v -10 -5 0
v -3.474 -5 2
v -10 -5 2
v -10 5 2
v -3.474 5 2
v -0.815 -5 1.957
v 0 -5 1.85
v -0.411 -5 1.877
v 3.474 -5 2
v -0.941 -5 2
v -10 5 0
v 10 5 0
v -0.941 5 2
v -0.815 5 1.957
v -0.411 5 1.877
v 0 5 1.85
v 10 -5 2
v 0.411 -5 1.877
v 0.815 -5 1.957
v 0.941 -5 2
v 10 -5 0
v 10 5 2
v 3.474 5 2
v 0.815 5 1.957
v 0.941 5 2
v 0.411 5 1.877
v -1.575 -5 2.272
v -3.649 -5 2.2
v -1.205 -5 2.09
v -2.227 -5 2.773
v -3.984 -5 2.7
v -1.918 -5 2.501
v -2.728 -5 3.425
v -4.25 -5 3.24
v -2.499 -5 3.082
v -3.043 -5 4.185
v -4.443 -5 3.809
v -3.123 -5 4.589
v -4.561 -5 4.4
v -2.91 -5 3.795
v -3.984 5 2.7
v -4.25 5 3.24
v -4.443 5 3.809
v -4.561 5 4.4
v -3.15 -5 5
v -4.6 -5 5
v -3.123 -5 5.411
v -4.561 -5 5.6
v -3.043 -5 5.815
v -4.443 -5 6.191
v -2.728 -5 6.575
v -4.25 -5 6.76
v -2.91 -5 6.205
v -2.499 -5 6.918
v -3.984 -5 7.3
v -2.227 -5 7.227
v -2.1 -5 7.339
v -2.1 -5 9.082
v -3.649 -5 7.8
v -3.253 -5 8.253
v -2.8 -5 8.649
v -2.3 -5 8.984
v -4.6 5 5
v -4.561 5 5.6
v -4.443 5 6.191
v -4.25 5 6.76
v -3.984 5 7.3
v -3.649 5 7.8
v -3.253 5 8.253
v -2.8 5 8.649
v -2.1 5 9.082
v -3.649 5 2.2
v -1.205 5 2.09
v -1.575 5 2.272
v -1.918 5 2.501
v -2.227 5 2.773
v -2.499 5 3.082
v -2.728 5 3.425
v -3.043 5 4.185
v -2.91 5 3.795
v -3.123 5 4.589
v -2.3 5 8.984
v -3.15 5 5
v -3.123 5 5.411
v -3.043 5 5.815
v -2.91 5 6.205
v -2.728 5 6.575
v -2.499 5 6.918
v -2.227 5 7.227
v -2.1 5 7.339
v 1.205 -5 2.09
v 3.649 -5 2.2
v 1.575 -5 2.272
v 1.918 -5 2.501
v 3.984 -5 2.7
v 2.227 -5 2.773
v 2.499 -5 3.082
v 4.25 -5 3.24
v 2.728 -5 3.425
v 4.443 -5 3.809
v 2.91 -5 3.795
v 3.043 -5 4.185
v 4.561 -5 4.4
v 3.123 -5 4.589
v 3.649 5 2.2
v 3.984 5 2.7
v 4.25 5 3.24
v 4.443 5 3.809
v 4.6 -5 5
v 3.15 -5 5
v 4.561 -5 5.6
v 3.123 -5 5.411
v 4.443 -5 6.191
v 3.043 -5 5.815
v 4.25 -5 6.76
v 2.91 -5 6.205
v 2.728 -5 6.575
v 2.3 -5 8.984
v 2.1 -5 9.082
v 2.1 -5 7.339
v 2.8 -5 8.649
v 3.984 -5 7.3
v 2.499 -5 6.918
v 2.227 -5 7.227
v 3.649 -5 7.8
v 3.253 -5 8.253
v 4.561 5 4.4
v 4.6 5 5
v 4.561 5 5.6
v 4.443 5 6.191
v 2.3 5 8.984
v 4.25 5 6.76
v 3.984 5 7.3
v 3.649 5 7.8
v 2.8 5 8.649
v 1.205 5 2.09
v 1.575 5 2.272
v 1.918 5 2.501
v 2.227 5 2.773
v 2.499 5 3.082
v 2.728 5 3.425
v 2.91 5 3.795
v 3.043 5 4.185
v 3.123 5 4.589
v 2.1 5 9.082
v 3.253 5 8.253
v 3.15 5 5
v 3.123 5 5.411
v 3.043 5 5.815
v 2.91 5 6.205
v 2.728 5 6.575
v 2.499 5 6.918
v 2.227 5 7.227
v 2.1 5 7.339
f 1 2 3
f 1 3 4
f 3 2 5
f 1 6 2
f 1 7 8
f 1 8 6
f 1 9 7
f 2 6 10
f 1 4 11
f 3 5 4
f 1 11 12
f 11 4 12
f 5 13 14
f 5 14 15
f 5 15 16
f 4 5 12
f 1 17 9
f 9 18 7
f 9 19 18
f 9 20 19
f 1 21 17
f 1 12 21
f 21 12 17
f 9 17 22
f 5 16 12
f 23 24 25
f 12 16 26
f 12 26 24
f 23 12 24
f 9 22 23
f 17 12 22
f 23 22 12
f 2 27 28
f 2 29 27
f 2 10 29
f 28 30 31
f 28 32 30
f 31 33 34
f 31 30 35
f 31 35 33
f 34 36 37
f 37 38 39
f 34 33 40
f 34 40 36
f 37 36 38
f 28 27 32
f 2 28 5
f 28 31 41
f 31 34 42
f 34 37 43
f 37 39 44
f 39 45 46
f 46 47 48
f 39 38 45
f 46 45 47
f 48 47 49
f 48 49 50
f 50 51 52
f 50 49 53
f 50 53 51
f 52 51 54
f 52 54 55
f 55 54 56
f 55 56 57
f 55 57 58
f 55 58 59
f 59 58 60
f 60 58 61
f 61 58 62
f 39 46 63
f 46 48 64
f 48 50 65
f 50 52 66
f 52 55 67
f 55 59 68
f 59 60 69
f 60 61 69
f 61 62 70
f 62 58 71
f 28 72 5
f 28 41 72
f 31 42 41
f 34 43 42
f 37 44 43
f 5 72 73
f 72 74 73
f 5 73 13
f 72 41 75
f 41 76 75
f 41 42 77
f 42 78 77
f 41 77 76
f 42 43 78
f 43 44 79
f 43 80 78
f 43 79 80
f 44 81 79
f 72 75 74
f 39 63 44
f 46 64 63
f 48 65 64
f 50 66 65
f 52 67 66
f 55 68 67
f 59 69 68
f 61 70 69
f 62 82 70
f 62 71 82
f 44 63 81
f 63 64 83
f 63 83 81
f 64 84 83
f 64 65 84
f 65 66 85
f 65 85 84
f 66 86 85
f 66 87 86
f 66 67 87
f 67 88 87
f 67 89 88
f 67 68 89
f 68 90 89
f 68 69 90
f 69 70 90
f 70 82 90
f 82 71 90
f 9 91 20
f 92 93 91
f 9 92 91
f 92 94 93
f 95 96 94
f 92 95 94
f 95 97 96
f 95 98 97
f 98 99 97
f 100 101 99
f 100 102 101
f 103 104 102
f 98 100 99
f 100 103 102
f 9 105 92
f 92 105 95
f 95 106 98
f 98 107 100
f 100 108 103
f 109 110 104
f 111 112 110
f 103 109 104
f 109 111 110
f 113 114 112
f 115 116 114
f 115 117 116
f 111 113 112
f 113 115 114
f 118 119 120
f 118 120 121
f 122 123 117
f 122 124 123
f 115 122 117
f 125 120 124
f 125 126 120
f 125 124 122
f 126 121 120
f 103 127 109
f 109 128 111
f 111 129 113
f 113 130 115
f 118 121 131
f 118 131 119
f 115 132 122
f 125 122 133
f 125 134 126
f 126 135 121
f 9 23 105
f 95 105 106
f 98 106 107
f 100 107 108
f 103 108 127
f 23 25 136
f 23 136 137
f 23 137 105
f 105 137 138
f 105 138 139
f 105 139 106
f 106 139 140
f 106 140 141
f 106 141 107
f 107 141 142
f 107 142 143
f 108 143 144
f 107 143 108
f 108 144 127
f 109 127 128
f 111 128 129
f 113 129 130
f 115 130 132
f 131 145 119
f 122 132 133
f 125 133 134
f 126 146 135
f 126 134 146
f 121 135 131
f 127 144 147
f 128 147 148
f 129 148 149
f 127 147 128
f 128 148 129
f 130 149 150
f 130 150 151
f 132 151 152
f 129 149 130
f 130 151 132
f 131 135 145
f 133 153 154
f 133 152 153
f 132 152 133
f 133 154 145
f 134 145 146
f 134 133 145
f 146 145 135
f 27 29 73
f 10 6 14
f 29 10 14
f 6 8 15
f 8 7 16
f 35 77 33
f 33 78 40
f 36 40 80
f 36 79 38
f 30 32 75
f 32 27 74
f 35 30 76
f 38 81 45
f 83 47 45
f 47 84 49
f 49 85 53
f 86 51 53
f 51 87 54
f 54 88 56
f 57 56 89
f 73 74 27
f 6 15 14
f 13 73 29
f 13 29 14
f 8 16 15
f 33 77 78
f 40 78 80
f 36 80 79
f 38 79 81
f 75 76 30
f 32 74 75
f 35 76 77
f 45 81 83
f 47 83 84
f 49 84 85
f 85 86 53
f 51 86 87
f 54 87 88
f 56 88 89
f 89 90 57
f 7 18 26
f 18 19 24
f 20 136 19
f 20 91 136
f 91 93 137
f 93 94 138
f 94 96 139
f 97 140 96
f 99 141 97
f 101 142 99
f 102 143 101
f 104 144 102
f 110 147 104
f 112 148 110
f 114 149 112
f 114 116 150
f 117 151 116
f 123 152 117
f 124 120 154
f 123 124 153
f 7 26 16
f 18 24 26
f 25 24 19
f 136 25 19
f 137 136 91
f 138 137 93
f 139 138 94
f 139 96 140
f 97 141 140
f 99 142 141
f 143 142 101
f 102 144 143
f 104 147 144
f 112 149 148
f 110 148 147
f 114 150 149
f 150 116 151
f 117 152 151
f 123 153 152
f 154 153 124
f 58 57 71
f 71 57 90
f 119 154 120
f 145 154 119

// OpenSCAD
// Desk cable clip: a cable snaps into the ring, a 20 x 20 mm VHB pad holds the flat base to the desk edge.
// One colour, prints flat on its base with no supports (the ring is a short bridge).
// FIT: measure your cable's outside diameter and set cable_d; the ring adds 0.3 mm of play and the mouth is 70% of
// the cable so it snaps past and stays.
$fn = 48;
cable_d = 6.0;   // FIT: cable outside diameter (Cat6 is about 6 mm, a USB lead about 4)
clip_w = 10;     // width along the cable
pad = 20;        // base length, to suit a 20 x 20 mm adhesive pad
base_t = 2;

difference() {
  union() {
    translate([-pad / 2, -clip_w / 2, 0]) cube([pad, clip_w, base_t]);                                             // base
    translate([0, clip_w / 2, base_t + cable_d / 2]) rotate([90, 0, 0]) cylinder(d = cable_d + 3.2, h = clip_w);    // ring
  }
  translate([0, clip_w / 2 + 1, base_t + cable_d / 2]) rotate([90, 0, 0]) cylinder(d = cable_d + 0.3, h = clip_w + 2);
  translate([-cable_d * 0.35, -clip_w / 2 - 1, base_t + cable_d * 0.75]) cube([cable_d * 0.7, clip_w + 2, cable_d]);   // snap-in mouth
}
